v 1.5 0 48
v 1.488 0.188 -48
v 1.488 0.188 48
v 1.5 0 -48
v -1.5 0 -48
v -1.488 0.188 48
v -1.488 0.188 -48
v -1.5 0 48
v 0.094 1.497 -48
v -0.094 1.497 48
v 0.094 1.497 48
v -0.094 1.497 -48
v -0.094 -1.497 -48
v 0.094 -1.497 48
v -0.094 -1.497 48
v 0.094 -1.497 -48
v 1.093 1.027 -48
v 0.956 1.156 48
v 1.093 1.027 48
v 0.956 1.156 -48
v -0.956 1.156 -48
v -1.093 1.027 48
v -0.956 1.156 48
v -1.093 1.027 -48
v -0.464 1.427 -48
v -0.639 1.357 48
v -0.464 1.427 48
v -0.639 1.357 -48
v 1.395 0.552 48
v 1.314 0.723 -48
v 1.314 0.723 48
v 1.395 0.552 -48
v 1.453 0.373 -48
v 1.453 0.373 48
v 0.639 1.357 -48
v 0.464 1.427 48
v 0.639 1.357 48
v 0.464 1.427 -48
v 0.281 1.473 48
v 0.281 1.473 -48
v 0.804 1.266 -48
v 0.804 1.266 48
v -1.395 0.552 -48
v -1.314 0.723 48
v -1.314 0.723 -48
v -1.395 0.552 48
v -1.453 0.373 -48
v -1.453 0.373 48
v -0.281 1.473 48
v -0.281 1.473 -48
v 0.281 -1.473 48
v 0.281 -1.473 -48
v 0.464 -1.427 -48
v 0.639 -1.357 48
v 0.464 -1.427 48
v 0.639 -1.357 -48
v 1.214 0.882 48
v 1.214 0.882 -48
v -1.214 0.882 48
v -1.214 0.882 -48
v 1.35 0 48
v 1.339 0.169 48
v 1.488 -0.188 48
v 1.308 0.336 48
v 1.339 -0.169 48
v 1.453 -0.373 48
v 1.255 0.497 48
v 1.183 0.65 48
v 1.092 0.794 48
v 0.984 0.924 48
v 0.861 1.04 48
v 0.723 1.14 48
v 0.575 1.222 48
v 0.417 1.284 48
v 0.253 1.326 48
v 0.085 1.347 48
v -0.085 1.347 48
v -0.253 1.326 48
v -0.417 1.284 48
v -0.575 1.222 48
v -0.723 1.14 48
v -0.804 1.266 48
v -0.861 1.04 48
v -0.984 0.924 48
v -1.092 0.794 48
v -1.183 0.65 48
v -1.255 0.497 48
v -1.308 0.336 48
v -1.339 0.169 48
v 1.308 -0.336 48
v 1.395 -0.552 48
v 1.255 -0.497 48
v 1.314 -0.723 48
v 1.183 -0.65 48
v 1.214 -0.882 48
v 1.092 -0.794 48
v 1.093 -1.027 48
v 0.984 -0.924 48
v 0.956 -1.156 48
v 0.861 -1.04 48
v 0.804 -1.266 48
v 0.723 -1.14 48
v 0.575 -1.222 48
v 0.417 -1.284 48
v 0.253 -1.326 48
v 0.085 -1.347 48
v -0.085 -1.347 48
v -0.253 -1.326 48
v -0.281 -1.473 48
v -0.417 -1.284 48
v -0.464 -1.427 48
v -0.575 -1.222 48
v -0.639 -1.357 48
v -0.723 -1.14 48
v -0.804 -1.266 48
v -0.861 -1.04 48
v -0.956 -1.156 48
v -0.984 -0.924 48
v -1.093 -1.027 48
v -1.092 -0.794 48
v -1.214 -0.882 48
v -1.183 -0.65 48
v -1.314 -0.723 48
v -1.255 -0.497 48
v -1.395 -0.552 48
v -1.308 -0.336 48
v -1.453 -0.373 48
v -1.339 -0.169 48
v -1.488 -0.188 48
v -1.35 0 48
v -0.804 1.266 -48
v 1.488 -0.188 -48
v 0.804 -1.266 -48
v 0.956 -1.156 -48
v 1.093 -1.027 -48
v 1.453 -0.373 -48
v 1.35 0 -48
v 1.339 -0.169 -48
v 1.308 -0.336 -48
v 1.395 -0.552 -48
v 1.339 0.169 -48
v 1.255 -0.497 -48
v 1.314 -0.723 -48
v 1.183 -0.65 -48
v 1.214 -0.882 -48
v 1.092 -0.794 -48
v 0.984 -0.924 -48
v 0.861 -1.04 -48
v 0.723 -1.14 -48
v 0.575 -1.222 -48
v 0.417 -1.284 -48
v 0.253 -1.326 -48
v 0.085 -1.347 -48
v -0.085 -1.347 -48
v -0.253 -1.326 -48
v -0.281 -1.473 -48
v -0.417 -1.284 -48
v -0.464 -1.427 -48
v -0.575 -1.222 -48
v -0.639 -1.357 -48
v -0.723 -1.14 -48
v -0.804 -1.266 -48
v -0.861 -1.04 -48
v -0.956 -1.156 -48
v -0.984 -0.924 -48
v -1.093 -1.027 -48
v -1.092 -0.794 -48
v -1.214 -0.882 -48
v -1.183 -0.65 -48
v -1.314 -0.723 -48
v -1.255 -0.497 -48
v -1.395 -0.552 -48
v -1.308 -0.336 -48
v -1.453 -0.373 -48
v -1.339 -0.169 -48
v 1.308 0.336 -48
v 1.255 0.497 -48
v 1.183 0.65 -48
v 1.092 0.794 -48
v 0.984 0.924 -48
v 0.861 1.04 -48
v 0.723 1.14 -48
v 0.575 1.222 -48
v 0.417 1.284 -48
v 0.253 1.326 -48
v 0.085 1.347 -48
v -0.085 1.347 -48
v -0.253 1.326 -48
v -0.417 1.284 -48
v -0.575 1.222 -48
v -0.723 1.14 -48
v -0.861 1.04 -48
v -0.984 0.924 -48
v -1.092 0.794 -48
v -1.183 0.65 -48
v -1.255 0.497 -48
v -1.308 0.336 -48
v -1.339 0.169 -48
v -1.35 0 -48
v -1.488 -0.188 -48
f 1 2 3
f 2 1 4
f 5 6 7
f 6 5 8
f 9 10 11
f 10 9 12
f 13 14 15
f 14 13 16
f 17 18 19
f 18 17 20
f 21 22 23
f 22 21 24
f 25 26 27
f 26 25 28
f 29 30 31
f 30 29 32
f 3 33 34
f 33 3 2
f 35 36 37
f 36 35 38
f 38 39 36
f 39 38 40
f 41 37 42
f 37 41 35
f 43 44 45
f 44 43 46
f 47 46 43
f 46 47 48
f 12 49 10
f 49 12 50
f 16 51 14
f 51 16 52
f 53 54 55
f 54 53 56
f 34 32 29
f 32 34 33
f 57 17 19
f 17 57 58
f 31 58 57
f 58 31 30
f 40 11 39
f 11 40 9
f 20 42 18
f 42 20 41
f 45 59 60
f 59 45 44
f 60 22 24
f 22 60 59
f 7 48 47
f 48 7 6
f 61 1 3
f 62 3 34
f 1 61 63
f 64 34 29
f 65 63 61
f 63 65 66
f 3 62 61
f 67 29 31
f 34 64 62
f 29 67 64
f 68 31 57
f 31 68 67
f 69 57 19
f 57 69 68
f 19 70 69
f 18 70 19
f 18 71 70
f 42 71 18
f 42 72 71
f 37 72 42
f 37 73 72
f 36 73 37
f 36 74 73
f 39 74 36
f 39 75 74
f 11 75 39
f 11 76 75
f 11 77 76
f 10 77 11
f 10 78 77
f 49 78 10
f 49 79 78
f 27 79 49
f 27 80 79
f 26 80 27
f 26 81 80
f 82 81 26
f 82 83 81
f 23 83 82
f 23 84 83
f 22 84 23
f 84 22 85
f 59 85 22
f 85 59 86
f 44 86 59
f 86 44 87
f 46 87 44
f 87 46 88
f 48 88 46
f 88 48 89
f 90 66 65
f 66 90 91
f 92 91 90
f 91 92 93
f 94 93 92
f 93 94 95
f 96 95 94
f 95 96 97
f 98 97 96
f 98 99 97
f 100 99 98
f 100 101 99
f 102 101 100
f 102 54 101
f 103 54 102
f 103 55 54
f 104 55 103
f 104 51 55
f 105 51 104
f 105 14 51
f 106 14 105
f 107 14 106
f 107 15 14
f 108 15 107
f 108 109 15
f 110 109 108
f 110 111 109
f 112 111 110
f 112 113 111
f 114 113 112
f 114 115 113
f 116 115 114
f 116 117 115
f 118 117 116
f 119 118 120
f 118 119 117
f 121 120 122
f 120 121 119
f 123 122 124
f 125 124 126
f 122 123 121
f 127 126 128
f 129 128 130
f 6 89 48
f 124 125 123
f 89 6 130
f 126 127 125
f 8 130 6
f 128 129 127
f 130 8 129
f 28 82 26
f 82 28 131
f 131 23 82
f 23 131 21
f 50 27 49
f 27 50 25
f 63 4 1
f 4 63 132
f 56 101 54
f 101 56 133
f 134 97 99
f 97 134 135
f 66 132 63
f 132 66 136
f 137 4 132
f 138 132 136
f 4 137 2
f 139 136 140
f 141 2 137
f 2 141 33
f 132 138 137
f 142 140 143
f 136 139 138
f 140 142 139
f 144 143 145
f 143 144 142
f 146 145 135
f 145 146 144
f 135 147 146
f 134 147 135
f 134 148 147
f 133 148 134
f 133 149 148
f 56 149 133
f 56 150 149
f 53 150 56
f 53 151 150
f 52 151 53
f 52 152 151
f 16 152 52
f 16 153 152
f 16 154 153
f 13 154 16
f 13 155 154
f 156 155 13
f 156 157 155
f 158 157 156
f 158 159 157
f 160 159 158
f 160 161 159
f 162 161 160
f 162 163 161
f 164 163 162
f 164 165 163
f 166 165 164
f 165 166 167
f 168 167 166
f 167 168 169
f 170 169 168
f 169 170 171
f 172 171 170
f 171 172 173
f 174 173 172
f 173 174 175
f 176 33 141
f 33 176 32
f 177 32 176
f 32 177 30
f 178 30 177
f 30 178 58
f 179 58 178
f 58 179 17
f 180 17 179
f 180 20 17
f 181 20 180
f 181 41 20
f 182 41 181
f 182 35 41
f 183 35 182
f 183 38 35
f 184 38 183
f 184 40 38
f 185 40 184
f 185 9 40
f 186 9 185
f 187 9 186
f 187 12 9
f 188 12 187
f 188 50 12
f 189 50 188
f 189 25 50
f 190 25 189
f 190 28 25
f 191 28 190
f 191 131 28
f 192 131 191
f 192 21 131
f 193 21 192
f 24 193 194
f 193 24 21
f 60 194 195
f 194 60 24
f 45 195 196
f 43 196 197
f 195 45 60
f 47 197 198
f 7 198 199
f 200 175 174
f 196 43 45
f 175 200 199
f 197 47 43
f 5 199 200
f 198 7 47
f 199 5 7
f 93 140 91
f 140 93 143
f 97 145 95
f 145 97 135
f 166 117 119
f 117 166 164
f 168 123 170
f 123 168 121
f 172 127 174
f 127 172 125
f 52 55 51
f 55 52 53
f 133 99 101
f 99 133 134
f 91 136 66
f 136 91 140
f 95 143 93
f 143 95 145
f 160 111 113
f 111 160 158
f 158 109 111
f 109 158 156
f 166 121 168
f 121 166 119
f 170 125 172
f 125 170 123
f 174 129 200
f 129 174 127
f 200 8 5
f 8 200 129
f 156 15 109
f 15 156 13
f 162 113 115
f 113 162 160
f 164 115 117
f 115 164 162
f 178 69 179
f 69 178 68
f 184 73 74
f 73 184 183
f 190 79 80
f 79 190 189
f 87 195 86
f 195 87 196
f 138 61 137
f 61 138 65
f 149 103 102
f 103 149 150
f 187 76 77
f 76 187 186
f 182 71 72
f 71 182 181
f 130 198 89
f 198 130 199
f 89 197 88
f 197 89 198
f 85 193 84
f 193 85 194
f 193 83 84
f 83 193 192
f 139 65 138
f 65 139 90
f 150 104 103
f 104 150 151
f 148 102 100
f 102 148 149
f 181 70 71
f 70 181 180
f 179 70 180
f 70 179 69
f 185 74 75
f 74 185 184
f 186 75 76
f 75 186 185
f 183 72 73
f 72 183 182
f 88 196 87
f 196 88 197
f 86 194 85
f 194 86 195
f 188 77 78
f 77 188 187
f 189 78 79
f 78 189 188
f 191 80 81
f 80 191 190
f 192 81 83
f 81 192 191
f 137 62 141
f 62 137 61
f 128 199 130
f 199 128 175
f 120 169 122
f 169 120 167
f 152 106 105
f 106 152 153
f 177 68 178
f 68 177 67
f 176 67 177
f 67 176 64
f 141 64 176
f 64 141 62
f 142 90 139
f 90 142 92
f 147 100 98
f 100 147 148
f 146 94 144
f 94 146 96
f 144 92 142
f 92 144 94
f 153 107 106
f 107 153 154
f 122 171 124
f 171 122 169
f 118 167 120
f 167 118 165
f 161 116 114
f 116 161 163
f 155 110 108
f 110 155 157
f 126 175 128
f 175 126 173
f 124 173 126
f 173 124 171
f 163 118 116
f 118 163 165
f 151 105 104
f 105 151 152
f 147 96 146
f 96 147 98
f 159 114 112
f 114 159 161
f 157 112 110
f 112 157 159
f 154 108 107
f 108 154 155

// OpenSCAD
$fn = 50;


difference() {
	union() {
		translate(v = [0, 0, -48.0000000000]) {
			cylinder(h = 96, r = 1.5000000000);
		}
	}
	union() {
		translate(v = [0, 0, -100.0000000000]) {
			cylinder(h = 200, r = 1.3500000000);
		}
	}
}
